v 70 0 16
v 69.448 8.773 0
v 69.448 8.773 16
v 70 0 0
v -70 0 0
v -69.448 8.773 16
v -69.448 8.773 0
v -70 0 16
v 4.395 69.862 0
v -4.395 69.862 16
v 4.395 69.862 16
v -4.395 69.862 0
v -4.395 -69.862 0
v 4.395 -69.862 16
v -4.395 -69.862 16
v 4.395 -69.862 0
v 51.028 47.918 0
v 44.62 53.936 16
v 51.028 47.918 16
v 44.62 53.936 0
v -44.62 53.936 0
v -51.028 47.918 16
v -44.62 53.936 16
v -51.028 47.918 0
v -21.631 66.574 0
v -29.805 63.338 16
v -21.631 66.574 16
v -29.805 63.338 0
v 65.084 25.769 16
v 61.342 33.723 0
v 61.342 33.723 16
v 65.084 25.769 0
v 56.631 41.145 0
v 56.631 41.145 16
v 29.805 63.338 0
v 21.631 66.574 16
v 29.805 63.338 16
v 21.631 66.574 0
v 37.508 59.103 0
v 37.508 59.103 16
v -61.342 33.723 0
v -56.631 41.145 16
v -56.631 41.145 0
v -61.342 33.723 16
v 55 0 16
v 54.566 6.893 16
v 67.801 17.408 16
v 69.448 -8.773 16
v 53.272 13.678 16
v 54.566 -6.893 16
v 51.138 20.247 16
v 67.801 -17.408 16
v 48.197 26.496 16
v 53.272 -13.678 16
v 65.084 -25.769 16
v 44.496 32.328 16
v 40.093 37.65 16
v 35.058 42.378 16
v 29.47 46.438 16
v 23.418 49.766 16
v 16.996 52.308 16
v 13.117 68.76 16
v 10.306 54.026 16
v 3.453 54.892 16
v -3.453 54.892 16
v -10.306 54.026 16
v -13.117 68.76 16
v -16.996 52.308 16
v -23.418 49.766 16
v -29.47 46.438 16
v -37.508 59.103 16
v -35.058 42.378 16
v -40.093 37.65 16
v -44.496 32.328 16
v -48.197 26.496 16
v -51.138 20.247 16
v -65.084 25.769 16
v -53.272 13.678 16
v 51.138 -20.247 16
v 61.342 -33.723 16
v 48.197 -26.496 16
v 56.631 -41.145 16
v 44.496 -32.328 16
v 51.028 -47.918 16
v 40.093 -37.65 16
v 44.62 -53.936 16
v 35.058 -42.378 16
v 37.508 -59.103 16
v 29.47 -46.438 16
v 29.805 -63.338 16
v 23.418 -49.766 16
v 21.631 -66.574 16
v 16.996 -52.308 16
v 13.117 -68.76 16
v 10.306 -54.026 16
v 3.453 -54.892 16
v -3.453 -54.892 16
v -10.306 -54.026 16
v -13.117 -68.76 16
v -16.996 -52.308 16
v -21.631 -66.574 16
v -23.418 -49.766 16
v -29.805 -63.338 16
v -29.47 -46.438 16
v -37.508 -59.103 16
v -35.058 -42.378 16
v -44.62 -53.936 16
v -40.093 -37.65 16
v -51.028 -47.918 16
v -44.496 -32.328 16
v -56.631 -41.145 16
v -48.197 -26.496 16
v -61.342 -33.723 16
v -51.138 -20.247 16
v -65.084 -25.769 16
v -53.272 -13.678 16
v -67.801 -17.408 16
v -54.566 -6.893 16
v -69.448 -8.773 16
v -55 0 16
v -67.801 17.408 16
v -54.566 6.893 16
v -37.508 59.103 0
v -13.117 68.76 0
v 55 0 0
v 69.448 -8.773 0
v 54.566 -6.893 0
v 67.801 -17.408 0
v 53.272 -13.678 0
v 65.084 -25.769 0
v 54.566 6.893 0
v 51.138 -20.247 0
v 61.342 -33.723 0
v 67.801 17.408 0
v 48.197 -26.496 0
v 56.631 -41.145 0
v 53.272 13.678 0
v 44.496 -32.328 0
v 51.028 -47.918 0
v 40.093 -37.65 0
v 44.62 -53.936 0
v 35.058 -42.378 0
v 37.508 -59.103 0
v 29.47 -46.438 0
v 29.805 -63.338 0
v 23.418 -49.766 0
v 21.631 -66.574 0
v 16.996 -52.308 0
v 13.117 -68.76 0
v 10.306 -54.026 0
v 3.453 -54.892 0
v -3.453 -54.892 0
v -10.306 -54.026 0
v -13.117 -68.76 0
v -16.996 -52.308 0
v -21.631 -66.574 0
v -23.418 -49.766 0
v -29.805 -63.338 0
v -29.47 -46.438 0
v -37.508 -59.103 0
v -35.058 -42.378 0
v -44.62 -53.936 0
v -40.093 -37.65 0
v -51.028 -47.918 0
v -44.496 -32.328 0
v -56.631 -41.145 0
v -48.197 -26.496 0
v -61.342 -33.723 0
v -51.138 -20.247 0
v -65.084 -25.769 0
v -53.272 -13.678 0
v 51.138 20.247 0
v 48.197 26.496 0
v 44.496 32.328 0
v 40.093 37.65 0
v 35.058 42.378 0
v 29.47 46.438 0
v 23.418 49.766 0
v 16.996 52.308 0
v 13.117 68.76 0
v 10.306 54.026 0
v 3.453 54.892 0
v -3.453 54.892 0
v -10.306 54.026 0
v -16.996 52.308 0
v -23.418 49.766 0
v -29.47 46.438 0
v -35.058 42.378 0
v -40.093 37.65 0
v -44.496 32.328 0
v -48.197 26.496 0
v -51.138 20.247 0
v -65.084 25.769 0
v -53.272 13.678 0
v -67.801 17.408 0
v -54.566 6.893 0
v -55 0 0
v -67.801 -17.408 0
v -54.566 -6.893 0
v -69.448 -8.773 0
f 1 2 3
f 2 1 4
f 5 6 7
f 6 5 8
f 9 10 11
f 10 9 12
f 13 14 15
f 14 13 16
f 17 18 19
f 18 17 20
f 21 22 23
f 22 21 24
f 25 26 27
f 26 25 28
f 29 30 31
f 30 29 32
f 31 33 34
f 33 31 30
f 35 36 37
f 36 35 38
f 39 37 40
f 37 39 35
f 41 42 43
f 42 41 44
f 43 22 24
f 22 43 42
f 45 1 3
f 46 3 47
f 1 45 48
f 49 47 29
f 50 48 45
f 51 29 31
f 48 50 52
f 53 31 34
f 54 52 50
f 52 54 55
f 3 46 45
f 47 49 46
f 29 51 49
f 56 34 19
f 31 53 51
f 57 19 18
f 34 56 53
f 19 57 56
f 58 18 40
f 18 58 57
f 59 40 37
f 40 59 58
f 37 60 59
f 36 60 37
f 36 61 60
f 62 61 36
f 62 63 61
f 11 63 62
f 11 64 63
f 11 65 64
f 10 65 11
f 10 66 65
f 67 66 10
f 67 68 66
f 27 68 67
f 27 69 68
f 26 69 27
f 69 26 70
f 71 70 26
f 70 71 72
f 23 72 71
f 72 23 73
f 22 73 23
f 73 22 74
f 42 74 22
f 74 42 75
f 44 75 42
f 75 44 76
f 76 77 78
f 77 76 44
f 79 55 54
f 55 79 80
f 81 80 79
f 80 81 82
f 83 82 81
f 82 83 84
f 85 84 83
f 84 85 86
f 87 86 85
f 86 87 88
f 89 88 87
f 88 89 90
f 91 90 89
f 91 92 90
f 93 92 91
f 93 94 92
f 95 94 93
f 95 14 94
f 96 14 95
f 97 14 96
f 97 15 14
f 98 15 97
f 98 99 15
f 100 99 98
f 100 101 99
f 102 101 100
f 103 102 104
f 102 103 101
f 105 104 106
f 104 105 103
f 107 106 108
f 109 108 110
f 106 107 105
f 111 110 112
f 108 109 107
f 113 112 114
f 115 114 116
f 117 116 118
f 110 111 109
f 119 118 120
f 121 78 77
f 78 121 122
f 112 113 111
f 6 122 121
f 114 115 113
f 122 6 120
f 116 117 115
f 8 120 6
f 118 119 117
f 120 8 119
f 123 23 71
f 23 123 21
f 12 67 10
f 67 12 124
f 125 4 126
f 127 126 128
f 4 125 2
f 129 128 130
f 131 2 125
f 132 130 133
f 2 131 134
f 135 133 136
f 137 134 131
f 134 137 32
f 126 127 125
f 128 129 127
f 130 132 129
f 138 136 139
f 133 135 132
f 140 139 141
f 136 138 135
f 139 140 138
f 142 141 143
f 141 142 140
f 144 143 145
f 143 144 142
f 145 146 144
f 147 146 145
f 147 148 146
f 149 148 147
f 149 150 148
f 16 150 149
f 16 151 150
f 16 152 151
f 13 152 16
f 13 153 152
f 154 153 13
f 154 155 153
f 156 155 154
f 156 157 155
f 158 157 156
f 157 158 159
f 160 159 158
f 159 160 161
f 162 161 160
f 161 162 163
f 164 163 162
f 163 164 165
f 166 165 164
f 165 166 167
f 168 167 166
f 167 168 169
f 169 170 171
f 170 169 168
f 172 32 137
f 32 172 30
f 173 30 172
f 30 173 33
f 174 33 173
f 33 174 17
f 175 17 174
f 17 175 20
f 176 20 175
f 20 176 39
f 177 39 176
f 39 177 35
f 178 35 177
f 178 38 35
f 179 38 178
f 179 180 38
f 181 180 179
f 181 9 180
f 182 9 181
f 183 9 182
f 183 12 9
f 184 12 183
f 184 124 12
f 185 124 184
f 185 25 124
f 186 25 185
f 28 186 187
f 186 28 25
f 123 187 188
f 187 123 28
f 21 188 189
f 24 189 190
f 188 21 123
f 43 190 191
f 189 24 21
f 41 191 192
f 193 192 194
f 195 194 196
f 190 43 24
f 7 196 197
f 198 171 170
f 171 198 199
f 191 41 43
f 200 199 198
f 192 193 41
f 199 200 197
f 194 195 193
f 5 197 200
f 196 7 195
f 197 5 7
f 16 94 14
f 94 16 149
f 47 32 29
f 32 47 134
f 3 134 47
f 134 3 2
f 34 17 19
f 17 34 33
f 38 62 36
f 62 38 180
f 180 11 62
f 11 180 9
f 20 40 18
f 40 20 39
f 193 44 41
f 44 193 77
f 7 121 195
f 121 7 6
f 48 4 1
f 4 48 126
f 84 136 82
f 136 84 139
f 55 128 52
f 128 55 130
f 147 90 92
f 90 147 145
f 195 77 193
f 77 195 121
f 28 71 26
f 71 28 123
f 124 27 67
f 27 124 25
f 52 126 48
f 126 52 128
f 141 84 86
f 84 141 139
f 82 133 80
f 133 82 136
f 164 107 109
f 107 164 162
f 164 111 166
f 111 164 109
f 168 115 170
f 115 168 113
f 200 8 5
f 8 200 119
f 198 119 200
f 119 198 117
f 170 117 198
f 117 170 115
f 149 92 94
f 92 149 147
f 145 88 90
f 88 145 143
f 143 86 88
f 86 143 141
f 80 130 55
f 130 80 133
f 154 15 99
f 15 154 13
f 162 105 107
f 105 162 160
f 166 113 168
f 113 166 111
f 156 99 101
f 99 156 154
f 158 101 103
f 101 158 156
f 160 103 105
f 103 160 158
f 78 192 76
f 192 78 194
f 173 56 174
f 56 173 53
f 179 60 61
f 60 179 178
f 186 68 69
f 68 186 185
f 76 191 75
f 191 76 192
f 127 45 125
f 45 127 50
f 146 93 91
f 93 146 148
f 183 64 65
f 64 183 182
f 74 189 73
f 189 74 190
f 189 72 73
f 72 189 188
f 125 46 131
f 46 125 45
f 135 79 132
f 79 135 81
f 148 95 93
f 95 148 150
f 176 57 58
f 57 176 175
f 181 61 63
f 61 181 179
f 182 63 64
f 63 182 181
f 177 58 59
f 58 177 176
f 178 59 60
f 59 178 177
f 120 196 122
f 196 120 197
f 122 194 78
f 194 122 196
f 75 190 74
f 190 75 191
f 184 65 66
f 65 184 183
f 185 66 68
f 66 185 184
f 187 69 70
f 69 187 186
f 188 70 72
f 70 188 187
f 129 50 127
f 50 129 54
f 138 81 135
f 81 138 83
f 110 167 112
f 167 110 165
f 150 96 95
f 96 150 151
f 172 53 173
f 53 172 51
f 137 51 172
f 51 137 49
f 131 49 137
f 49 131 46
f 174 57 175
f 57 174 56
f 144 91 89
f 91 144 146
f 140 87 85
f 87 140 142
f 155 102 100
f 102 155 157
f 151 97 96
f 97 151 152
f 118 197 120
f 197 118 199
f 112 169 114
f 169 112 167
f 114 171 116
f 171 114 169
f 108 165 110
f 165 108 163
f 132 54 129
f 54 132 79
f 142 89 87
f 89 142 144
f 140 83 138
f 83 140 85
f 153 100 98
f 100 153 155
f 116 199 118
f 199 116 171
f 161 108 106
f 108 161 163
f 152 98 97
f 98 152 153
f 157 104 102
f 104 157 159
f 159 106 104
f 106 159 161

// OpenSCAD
$fn = 50;


difference() {
	union() {
		translate(v = [0, 0, 0]) {
			rotate(a = [0, 0, 0]) {
				cylinder(h = 16, r = 70.0000000000);
			}
		}
	}
	union() {
		translate(v = [0, 0, 0]) {
			rotate(a = [0, 0, 0]) {
				cylinder(h = 16, r = 55.0000000000);
			}
		}
	}
}
